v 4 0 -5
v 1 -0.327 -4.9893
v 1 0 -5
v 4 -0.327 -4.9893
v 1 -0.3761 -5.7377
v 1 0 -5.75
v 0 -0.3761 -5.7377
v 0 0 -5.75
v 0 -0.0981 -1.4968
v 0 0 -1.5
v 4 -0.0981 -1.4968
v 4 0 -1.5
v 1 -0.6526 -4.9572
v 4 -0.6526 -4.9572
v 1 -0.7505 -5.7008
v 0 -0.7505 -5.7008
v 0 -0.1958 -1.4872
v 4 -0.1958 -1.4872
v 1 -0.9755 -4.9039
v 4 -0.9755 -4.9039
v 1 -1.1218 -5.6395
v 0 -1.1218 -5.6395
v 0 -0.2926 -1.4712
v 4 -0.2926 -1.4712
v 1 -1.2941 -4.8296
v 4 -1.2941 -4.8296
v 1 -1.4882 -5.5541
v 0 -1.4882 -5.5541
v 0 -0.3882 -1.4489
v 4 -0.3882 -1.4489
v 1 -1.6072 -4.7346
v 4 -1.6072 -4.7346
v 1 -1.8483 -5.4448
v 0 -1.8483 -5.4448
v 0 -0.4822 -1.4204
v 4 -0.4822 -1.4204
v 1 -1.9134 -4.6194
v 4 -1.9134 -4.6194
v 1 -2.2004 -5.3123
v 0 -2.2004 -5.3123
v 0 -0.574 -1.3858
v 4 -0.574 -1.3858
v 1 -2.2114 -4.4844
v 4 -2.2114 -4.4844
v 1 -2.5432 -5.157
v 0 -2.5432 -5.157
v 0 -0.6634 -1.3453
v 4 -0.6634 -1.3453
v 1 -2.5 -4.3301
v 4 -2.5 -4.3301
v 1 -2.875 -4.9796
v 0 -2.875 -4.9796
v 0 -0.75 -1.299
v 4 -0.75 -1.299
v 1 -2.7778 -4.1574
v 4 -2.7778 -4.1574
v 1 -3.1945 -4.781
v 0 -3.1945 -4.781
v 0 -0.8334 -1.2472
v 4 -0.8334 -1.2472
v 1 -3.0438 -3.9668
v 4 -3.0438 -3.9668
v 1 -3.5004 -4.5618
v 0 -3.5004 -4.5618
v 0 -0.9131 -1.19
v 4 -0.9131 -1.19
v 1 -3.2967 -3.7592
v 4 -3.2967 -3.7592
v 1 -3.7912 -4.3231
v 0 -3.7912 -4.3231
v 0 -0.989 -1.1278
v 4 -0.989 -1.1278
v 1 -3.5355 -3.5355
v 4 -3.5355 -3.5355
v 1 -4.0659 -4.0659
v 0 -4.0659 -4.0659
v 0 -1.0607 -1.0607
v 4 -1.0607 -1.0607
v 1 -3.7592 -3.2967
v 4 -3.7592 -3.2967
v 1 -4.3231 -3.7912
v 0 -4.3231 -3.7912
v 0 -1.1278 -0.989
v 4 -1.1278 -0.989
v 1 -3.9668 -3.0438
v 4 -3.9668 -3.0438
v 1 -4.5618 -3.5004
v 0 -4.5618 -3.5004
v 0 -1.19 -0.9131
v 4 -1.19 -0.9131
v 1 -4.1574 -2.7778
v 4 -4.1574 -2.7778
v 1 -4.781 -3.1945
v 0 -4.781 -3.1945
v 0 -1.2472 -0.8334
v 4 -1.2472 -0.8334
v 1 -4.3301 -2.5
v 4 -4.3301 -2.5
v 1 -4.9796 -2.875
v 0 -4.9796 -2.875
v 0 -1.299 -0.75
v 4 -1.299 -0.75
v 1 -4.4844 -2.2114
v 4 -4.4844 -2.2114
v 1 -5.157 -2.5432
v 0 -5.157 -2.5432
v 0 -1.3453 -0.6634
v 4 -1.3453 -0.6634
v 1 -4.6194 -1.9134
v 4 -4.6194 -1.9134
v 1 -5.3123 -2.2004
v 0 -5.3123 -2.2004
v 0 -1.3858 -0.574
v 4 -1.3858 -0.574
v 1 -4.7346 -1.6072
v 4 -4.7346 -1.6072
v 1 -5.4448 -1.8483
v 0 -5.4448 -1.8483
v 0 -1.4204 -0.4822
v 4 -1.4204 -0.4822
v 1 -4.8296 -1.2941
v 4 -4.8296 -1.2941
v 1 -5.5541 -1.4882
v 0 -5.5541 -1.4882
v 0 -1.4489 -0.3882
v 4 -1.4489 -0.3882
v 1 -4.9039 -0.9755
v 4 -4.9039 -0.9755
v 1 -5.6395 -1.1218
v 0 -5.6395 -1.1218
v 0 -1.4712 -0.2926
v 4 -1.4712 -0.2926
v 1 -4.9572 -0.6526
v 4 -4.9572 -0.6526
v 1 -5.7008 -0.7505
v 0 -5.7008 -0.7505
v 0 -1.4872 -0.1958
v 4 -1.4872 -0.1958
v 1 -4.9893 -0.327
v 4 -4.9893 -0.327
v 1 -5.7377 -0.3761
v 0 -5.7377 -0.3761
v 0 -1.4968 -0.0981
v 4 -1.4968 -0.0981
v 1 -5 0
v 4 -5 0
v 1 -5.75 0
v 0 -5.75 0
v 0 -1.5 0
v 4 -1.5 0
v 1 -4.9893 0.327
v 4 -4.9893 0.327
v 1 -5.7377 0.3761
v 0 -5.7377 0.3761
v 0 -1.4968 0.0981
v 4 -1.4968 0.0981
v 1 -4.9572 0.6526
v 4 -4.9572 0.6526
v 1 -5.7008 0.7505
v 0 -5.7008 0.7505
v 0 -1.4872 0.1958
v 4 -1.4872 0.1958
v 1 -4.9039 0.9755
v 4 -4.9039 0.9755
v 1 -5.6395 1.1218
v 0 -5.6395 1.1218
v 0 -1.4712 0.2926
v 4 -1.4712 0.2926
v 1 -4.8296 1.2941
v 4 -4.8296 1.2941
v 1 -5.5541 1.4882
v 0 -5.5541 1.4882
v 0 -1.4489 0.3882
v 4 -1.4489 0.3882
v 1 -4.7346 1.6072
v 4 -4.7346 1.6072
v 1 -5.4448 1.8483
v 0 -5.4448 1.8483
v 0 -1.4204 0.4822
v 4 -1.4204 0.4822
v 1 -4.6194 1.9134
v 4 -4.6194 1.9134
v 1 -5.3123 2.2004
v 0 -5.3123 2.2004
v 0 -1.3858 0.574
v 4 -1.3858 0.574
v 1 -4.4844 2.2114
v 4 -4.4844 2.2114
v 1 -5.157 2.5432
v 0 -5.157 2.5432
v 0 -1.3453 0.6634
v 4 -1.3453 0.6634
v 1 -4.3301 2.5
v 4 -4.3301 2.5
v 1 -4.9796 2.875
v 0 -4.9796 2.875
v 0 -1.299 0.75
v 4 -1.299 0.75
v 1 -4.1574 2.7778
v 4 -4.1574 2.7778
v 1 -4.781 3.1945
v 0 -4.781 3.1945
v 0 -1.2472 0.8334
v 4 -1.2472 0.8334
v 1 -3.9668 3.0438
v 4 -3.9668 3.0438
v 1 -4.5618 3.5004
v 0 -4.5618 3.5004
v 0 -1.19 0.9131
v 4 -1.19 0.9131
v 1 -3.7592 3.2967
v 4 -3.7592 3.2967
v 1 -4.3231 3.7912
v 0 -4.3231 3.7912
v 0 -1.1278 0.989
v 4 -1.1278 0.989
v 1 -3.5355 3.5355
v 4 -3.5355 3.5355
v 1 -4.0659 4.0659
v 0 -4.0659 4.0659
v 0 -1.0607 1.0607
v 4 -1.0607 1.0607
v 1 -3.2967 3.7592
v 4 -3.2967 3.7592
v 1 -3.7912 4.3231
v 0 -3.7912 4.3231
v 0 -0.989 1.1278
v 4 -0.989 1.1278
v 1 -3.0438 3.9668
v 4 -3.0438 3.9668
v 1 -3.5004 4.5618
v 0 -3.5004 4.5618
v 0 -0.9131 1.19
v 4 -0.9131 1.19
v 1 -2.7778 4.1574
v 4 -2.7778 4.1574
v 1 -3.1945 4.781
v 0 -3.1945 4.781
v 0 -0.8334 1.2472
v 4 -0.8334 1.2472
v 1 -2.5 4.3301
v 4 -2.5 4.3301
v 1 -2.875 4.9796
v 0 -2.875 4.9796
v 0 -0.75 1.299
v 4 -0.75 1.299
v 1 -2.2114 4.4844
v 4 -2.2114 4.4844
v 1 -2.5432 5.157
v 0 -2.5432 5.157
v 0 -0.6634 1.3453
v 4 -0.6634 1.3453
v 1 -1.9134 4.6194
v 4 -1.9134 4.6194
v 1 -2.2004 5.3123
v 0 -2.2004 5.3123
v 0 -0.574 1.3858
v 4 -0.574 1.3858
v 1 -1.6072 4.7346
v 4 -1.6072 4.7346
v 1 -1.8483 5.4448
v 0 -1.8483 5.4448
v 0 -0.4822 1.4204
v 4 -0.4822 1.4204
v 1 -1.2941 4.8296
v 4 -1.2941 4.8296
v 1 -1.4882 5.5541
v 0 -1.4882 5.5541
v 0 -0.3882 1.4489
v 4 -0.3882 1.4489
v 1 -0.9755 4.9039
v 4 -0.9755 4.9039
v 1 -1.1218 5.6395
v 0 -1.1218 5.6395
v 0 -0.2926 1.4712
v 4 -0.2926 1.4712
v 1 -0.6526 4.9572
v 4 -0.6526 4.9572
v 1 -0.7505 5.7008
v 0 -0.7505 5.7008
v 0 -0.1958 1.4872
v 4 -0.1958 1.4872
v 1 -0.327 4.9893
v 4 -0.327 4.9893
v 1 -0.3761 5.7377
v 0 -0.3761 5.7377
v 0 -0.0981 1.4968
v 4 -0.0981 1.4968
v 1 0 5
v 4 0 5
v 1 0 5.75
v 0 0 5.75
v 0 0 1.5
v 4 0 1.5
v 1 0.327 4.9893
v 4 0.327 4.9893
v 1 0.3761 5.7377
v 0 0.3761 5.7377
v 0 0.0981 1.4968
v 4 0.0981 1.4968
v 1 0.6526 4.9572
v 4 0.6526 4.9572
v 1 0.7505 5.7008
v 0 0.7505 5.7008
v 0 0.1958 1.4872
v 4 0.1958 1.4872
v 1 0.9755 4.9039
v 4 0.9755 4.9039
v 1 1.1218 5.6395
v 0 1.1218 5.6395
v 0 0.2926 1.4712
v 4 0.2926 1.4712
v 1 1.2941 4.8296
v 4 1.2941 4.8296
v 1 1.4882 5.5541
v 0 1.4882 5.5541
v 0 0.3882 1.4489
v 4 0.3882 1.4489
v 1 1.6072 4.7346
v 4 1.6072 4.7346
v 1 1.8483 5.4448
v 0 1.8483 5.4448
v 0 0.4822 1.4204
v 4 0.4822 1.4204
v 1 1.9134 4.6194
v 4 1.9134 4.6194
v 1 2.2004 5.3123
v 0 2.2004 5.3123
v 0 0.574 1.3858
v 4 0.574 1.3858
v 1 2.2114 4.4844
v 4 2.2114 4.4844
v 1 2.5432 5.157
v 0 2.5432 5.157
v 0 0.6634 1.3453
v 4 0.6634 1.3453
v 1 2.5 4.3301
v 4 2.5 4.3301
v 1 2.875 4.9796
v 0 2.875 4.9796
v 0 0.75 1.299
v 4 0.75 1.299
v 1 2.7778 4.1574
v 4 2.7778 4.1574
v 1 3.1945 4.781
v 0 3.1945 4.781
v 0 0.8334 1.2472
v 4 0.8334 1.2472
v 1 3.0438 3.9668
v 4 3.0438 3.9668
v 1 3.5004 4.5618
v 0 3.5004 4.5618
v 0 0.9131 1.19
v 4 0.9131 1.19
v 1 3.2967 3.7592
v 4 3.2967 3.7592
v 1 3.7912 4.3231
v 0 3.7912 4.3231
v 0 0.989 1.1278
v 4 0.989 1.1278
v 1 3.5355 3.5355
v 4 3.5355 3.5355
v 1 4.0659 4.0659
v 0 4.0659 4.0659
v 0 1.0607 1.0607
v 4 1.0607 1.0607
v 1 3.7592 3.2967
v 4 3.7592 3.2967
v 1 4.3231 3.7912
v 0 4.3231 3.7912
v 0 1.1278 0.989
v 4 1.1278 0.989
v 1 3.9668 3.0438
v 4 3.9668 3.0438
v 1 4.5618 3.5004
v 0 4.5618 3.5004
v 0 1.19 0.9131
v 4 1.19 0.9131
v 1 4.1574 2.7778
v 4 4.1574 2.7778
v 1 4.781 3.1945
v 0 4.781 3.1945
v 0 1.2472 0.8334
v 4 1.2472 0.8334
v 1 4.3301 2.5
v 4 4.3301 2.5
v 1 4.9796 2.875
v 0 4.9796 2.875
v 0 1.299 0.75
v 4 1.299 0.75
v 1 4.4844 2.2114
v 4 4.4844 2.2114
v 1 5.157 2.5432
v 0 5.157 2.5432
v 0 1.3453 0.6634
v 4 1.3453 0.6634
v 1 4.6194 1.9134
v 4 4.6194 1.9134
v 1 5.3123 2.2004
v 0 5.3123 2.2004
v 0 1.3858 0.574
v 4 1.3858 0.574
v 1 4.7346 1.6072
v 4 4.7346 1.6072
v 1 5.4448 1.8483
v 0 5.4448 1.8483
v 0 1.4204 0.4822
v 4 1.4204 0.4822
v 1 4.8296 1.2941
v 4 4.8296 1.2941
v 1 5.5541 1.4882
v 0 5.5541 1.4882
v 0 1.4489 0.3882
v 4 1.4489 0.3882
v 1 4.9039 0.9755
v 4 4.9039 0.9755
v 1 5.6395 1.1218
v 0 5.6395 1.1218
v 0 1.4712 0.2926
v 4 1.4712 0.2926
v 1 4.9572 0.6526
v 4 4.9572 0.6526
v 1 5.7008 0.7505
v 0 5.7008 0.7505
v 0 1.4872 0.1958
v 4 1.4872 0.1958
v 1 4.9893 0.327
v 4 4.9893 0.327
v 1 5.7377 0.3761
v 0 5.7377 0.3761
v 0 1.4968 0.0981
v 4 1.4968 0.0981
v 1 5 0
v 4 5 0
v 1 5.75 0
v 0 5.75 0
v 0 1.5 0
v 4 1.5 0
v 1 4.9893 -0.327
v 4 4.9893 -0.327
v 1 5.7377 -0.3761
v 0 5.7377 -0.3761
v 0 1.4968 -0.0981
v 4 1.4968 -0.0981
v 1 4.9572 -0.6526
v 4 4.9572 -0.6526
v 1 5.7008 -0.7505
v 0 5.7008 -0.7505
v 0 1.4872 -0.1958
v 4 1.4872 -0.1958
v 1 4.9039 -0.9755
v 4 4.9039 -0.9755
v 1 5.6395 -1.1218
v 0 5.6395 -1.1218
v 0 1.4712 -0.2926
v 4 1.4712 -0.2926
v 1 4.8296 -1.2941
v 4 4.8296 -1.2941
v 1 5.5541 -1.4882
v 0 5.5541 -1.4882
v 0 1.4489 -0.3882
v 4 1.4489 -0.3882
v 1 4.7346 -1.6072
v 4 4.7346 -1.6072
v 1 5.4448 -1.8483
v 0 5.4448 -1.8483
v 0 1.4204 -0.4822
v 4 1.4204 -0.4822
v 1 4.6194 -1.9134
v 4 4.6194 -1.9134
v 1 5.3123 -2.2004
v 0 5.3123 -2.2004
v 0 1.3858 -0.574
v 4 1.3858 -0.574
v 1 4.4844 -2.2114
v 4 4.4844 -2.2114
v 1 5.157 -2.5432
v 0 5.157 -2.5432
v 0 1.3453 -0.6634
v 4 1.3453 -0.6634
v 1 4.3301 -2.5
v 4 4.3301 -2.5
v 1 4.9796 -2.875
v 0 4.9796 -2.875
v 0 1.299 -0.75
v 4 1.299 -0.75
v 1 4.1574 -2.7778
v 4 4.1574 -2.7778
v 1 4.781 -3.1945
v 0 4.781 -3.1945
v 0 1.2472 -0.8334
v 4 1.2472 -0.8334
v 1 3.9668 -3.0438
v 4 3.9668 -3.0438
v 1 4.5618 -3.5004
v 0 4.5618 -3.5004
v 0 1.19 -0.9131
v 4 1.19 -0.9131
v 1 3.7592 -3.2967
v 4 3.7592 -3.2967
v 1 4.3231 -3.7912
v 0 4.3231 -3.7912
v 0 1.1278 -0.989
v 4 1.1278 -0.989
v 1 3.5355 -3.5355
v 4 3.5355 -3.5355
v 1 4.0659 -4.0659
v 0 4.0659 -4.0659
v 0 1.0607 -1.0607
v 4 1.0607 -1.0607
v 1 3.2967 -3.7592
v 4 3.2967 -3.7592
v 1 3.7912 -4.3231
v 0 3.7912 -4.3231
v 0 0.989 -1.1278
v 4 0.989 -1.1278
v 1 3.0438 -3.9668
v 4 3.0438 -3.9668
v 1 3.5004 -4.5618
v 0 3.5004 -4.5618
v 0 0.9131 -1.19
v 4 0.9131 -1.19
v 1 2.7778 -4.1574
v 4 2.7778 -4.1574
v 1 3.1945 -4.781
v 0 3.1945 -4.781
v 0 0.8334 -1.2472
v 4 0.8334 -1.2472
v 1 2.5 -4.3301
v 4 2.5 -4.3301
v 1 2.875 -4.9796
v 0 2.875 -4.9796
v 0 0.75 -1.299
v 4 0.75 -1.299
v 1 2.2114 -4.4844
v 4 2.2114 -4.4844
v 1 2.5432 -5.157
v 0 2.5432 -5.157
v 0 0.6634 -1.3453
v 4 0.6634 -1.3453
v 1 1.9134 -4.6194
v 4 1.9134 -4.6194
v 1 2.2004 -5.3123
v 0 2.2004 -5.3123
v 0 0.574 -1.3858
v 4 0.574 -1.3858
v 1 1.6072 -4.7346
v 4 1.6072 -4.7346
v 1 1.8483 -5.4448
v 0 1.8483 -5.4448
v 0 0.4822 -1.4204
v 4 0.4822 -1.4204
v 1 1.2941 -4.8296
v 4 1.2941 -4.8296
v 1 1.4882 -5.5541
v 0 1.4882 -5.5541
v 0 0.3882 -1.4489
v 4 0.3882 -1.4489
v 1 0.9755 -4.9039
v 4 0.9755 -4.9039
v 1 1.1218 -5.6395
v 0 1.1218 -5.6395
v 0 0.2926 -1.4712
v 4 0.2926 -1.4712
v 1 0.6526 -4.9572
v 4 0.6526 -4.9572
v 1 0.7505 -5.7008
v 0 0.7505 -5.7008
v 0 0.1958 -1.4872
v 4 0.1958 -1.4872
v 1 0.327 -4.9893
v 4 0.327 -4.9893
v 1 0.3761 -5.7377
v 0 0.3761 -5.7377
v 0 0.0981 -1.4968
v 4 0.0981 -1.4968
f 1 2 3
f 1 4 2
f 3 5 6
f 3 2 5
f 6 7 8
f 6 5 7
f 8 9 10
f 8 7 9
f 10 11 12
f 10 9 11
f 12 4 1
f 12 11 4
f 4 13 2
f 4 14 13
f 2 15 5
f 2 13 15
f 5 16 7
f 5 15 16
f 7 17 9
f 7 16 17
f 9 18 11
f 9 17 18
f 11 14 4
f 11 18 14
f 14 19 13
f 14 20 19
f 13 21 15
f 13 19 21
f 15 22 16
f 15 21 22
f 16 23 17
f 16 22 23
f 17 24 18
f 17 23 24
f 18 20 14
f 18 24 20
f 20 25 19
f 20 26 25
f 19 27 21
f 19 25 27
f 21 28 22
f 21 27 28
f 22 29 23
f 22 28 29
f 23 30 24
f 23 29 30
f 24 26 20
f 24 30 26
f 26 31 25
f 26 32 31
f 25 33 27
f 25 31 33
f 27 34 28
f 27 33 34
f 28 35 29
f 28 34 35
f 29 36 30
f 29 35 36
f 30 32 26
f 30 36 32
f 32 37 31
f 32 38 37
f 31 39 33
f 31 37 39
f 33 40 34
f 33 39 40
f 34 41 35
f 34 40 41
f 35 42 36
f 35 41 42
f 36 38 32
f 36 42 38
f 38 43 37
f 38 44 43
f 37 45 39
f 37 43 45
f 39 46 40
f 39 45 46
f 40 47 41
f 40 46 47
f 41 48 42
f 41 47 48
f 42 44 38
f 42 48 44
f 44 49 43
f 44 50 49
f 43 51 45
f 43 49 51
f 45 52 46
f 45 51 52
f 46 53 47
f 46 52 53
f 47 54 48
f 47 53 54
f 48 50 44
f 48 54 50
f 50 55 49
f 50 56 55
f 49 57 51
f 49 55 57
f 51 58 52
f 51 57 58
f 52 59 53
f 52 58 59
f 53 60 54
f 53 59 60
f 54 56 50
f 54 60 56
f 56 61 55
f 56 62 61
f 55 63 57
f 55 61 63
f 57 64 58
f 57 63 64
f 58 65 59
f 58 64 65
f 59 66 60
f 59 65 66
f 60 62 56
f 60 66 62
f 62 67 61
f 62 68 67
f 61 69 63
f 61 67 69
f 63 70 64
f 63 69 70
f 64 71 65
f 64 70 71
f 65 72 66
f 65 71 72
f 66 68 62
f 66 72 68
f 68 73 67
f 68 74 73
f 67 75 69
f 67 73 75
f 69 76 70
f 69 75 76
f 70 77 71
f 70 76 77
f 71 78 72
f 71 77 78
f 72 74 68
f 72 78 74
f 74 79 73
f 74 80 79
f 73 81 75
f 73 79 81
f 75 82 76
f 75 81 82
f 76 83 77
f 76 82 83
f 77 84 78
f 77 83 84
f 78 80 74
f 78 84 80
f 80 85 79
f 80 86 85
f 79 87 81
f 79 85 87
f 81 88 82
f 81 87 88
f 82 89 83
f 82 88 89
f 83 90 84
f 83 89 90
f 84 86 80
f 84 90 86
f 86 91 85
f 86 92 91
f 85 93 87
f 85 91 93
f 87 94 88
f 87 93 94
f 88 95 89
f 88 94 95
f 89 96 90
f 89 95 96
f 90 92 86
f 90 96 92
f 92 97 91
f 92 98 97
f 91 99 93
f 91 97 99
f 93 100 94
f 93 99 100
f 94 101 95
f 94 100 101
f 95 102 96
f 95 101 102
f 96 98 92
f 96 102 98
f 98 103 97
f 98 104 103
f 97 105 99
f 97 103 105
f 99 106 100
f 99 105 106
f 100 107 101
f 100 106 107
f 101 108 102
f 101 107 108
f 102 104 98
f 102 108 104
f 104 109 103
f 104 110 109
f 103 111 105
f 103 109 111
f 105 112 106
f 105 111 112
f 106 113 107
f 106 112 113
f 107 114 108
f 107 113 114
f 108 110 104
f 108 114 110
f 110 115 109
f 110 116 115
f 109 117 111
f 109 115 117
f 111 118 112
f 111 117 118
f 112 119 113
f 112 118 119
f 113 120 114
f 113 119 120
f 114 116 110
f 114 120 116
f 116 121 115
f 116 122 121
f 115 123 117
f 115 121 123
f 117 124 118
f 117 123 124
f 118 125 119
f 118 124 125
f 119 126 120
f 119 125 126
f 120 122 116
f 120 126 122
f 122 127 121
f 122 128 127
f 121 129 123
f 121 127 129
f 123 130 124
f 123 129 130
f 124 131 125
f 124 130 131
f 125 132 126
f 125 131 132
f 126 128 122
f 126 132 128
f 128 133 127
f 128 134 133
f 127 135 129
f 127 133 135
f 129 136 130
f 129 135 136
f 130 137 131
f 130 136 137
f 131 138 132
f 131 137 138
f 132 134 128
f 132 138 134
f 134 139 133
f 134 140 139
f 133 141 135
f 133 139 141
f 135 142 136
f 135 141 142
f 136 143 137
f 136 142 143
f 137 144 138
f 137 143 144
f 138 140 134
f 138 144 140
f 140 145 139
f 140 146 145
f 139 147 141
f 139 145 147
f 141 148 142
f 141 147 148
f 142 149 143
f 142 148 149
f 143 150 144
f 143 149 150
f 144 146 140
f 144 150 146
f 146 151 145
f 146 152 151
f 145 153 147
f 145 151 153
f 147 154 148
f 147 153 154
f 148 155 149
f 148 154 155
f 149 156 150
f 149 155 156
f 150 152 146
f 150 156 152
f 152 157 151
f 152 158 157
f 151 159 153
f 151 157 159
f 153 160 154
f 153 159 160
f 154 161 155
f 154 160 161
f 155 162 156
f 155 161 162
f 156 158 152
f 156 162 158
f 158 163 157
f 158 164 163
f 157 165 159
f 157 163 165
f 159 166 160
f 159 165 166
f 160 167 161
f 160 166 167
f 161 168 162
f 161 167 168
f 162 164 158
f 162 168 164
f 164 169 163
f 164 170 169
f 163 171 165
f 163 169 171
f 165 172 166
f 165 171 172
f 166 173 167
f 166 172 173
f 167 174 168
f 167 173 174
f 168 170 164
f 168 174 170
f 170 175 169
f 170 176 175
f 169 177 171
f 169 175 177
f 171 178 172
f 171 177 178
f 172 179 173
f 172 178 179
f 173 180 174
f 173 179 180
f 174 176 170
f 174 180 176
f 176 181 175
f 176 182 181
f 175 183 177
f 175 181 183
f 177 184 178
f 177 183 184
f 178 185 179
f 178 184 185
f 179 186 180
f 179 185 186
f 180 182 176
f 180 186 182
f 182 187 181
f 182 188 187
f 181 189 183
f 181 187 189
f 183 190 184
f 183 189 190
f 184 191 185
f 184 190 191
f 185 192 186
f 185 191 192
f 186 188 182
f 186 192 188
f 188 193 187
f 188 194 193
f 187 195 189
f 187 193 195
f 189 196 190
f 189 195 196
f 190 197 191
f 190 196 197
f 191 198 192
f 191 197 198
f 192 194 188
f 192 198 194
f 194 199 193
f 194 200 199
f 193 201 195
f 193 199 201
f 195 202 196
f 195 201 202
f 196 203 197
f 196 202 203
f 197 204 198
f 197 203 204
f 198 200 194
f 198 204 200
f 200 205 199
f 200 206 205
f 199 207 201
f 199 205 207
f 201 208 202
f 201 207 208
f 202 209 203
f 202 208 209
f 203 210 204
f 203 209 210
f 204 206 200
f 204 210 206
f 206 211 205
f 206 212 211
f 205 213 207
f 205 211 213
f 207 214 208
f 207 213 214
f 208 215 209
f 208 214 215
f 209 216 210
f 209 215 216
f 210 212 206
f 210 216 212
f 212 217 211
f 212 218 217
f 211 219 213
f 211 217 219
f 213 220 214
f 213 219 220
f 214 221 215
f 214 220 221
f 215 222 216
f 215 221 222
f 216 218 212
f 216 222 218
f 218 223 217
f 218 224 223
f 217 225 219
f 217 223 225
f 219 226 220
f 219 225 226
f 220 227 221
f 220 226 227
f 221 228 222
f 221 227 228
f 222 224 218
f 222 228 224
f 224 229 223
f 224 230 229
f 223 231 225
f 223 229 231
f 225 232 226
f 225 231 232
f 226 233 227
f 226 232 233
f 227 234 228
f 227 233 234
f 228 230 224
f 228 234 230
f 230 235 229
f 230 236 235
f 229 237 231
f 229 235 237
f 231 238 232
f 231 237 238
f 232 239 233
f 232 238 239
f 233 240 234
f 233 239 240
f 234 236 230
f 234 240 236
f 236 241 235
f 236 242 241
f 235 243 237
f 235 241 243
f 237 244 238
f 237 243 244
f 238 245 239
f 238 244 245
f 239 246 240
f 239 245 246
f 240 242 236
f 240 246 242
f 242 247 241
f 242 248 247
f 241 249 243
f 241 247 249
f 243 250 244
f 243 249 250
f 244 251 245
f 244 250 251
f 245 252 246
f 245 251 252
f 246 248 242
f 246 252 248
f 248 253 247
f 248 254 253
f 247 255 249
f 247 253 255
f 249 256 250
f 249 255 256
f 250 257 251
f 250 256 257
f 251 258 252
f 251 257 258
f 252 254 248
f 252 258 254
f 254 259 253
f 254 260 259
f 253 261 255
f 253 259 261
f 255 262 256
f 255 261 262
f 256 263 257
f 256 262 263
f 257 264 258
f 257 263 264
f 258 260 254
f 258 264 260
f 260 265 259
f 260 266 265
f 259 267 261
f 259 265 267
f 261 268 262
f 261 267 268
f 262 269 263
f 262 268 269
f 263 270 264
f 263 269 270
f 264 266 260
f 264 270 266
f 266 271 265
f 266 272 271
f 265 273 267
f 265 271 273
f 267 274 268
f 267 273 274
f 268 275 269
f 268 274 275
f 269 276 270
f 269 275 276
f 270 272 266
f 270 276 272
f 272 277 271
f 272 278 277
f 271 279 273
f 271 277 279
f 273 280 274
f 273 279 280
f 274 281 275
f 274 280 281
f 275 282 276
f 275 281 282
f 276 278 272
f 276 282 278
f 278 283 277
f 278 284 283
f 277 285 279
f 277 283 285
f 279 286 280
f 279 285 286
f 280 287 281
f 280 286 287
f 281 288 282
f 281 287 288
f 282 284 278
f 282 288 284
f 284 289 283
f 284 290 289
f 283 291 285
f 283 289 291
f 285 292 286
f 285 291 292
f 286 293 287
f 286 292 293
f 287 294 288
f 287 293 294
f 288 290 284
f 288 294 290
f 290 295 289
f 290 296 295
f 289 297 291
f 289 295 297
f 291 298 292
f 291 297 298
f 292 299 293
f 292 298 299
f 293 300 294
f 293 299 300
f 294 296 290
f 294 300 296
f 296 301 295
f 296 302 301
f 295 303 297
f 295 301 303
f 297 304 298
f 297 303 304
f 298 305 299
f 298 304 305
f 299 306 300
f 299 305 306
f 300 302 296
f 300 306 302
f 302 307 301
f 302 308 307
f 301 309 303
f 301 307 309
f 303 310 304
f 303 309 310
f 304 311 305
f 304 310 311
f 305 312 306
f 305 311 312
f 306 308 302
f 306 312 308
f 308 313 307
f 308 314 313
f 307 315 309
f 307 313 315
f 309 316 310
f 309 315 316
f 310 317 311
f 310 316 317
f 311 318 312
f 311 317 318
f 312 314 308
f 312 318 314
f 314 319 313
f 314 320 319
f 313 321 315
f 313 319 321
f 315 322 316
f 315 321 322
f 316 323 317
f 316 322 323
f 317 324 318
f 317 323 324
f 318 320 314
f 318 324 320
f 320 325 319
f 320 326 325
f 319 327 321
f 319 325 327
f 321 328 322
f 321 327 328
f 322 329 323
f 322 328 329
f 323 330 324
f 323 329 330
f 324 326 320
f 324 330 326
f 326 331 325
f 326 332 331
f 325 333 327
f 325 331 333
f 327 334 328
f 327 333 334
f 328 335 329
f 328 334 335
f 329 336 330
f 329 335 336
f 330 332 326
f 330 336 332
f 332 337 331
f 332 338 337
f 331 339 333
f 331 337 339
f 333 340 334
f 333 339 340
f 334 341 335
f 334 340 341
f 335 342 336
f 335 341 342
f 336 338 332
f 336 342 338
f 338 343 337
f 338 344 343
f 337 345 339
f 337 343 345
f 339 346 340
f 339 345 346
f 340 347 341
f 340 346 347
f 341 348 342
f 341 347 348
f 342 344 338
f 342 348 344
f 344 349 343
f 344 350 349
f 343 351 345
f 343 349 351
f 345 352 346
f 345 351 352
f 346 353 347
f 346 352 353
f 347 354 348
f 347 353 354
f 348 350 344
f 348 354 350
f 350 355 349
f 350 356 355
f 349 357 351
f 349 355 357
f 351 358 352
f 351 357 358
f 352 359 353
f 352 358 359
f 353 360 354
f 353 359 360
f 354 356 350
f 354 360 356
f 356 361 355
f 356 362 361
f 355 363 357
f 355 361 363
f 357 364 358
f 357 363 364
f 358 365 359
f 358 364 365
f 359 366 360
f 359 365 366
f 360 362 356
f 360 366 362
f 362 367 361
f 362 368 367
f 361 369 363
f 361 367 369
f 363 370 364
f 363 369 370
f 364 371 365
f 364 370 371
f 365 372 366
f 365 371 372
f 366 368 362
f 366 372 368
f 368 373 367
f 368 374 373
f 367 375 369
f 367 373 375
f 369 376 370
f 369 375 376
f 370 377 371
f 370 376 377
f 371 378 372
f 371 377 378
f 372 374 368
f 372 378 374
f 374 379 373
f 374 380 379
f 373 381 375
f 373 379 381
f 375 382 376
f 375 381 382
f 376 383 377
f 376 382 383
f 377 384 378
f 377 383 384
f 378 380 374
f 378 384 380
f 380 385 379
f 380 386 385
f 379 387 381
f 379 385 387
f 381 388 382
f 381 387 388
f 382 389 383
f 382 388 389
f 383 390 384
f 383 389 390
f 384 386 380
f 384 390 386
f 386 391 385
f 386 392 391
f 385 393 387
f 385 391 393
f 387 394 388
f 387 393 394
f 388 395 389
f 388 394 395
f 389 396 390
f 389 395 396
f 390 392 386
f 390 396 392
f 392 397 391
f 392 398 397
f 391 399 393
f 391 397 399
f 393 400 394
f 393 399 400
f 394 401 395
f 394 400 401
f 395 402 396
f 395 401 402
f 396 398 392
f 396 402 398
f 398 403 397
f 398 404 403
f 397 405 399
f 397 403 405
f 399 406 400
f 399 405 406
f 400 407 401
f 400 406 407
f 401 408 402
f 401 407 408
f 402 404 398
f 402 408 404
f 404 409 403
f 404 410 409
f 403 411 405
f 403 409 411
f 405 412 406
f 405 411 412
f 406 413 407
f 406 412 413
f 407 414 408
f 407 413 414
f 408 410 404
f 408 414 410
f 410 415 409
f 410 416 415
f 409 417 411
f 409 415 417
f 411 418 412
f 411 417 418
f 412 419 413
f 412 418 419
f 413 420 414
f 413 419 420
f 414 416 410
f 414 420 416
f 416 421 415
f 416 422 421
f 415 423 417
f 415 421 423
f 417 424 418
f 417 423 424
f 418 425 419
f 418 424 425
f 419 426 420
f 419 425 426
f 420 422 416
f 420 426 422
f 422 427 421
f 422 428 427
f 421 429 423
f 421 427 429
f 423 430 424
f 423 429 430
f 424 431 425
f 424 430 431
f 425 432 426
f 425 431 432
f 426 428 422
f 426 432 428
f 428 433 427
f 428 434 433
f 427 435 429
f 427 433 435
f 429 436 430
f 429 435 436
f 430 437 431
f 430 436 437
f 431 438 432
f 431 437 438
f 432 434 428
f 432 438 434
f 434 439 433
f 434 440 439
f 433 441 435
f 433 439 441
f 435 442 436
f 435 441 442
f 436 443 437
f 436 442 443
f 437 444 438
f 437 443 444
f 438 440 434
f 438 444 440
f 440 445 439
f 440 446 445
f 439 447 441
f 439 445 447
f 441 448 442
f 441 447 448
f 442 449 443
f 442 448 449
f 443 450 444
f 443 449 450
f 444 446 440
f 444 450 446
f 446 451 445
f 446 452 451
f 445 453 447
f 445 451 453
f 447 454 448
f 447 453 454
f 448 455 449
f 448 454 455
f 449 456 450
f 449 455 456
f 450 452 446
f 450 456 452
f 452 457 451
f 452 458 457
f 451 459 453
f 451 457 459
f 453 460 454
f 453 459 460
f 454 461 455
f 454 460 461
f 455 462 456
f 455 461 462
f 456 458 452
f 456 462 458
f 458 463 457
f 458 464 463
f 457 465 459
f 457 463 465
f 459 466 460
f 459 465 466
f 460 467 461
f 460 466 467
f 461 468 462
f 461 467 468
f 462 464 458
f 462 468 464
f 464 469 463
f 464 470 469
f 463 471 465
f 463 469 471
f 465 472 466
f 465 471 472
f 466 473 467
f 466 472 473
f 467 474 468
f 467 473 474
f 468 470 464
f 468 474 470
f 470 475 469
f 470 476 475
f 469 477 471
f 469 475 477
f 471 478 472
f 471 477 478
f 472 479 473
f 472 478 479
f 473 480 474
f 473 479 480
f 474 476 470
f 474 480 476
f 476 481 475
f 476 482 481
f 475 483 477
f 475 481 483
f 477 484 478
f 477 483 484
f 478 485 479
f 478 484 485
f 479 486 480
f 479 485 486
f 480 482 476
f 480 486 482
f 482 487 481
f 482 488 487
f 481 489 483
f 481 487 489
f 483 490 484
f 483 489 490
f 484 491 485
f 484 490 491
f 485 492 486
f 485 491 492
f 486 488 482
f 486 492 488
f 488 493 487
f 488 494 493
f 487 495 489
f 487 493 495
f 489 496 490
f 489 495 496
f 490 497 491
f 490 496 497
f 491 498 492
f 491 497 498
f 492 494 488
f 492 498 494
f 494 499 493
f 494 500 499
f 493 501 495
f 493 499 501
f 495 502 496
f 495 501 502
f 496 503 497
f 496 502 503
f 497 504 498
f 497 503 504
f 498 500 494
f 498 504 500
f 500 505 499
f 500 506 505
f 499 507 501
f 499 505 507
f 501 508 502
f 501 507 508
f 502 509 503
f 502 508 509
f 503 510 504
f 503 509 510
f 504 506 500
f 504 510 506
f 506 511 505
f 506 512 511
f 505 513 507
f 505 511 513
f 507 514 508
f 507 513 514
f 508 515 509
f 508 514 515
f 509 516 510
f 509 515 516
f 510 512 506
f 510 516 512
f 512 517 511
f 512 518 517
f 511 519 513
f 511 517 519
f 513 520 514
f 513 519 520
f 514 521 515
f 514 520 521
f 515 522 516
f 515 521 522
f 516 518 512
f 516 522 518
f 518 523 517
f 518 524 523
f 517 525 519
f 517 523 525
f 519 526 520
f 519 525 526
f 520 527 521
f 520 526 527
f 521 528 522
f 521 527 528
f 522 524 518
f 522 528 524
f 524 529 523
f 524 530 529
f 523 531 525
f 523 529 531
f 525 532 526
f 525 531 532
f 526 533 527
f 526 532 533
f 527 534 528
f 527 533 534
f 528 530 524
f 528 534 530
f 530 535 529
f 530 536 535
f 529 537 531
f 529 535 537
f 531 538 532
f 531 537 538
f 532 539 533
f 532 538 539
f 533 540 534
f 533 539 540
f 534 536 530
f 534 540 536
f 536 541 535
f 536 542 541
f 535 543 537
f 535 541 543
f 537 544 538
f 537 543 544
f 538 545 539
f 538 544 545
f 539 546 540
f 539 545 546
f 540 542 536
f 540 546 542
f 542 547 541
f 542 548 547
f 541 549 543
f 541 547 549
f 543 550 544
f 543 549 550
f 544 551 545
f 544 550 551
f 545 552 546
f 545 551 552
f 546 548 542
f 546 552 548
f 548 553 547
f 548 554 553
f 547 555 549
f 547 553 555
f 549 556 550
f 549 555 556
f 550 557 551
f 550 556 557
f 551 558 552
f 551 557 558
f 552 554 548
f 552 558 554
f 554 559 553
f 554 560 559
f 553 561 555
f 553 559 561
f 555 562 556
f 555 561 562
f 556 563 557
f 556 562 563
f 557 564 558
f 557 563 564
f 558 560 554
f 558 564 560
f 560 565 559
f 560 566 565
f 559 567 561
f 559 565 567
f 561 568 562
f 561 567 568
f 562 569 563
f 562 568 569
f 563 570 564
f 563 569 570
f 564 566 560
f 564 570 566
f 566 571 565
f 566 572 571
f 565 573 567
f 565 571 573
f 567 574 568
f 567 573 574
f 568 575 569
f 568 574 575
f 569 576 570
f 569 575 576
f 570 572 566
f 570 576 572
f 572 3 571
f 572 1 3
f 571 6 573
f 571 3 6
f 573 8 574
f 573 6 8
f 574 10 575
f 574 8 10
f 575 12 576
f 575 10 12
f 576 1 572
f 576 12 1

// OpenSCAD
/**********************************************************************************************************************
 **
 ** parts/vitamins/bearing_f623.scad
 **
 ** This file renders a ball bearing of the size specified by the file name.
 **
 **********************************************************************************************************************/

// The MCAD library does not (yet) provide flanged bearings, so...
// The dimensions were taken from https://www.makeralot.com/images/bearings/F623ZZ-S.jpg.

$fn = 96;
rotate([0, 90, 0]) 
	rotate_extrude()
		rotate([0, 0, 90])
		  	polygon(points = [
				[ 0.00, 1.50],
				[ 0.00, 5.75],
				[ 1.00, 5.75],
				[ 1.00, 5.00],
				[ 4.00, 5.00],
				[ 4.00, 1.50]
			]);
